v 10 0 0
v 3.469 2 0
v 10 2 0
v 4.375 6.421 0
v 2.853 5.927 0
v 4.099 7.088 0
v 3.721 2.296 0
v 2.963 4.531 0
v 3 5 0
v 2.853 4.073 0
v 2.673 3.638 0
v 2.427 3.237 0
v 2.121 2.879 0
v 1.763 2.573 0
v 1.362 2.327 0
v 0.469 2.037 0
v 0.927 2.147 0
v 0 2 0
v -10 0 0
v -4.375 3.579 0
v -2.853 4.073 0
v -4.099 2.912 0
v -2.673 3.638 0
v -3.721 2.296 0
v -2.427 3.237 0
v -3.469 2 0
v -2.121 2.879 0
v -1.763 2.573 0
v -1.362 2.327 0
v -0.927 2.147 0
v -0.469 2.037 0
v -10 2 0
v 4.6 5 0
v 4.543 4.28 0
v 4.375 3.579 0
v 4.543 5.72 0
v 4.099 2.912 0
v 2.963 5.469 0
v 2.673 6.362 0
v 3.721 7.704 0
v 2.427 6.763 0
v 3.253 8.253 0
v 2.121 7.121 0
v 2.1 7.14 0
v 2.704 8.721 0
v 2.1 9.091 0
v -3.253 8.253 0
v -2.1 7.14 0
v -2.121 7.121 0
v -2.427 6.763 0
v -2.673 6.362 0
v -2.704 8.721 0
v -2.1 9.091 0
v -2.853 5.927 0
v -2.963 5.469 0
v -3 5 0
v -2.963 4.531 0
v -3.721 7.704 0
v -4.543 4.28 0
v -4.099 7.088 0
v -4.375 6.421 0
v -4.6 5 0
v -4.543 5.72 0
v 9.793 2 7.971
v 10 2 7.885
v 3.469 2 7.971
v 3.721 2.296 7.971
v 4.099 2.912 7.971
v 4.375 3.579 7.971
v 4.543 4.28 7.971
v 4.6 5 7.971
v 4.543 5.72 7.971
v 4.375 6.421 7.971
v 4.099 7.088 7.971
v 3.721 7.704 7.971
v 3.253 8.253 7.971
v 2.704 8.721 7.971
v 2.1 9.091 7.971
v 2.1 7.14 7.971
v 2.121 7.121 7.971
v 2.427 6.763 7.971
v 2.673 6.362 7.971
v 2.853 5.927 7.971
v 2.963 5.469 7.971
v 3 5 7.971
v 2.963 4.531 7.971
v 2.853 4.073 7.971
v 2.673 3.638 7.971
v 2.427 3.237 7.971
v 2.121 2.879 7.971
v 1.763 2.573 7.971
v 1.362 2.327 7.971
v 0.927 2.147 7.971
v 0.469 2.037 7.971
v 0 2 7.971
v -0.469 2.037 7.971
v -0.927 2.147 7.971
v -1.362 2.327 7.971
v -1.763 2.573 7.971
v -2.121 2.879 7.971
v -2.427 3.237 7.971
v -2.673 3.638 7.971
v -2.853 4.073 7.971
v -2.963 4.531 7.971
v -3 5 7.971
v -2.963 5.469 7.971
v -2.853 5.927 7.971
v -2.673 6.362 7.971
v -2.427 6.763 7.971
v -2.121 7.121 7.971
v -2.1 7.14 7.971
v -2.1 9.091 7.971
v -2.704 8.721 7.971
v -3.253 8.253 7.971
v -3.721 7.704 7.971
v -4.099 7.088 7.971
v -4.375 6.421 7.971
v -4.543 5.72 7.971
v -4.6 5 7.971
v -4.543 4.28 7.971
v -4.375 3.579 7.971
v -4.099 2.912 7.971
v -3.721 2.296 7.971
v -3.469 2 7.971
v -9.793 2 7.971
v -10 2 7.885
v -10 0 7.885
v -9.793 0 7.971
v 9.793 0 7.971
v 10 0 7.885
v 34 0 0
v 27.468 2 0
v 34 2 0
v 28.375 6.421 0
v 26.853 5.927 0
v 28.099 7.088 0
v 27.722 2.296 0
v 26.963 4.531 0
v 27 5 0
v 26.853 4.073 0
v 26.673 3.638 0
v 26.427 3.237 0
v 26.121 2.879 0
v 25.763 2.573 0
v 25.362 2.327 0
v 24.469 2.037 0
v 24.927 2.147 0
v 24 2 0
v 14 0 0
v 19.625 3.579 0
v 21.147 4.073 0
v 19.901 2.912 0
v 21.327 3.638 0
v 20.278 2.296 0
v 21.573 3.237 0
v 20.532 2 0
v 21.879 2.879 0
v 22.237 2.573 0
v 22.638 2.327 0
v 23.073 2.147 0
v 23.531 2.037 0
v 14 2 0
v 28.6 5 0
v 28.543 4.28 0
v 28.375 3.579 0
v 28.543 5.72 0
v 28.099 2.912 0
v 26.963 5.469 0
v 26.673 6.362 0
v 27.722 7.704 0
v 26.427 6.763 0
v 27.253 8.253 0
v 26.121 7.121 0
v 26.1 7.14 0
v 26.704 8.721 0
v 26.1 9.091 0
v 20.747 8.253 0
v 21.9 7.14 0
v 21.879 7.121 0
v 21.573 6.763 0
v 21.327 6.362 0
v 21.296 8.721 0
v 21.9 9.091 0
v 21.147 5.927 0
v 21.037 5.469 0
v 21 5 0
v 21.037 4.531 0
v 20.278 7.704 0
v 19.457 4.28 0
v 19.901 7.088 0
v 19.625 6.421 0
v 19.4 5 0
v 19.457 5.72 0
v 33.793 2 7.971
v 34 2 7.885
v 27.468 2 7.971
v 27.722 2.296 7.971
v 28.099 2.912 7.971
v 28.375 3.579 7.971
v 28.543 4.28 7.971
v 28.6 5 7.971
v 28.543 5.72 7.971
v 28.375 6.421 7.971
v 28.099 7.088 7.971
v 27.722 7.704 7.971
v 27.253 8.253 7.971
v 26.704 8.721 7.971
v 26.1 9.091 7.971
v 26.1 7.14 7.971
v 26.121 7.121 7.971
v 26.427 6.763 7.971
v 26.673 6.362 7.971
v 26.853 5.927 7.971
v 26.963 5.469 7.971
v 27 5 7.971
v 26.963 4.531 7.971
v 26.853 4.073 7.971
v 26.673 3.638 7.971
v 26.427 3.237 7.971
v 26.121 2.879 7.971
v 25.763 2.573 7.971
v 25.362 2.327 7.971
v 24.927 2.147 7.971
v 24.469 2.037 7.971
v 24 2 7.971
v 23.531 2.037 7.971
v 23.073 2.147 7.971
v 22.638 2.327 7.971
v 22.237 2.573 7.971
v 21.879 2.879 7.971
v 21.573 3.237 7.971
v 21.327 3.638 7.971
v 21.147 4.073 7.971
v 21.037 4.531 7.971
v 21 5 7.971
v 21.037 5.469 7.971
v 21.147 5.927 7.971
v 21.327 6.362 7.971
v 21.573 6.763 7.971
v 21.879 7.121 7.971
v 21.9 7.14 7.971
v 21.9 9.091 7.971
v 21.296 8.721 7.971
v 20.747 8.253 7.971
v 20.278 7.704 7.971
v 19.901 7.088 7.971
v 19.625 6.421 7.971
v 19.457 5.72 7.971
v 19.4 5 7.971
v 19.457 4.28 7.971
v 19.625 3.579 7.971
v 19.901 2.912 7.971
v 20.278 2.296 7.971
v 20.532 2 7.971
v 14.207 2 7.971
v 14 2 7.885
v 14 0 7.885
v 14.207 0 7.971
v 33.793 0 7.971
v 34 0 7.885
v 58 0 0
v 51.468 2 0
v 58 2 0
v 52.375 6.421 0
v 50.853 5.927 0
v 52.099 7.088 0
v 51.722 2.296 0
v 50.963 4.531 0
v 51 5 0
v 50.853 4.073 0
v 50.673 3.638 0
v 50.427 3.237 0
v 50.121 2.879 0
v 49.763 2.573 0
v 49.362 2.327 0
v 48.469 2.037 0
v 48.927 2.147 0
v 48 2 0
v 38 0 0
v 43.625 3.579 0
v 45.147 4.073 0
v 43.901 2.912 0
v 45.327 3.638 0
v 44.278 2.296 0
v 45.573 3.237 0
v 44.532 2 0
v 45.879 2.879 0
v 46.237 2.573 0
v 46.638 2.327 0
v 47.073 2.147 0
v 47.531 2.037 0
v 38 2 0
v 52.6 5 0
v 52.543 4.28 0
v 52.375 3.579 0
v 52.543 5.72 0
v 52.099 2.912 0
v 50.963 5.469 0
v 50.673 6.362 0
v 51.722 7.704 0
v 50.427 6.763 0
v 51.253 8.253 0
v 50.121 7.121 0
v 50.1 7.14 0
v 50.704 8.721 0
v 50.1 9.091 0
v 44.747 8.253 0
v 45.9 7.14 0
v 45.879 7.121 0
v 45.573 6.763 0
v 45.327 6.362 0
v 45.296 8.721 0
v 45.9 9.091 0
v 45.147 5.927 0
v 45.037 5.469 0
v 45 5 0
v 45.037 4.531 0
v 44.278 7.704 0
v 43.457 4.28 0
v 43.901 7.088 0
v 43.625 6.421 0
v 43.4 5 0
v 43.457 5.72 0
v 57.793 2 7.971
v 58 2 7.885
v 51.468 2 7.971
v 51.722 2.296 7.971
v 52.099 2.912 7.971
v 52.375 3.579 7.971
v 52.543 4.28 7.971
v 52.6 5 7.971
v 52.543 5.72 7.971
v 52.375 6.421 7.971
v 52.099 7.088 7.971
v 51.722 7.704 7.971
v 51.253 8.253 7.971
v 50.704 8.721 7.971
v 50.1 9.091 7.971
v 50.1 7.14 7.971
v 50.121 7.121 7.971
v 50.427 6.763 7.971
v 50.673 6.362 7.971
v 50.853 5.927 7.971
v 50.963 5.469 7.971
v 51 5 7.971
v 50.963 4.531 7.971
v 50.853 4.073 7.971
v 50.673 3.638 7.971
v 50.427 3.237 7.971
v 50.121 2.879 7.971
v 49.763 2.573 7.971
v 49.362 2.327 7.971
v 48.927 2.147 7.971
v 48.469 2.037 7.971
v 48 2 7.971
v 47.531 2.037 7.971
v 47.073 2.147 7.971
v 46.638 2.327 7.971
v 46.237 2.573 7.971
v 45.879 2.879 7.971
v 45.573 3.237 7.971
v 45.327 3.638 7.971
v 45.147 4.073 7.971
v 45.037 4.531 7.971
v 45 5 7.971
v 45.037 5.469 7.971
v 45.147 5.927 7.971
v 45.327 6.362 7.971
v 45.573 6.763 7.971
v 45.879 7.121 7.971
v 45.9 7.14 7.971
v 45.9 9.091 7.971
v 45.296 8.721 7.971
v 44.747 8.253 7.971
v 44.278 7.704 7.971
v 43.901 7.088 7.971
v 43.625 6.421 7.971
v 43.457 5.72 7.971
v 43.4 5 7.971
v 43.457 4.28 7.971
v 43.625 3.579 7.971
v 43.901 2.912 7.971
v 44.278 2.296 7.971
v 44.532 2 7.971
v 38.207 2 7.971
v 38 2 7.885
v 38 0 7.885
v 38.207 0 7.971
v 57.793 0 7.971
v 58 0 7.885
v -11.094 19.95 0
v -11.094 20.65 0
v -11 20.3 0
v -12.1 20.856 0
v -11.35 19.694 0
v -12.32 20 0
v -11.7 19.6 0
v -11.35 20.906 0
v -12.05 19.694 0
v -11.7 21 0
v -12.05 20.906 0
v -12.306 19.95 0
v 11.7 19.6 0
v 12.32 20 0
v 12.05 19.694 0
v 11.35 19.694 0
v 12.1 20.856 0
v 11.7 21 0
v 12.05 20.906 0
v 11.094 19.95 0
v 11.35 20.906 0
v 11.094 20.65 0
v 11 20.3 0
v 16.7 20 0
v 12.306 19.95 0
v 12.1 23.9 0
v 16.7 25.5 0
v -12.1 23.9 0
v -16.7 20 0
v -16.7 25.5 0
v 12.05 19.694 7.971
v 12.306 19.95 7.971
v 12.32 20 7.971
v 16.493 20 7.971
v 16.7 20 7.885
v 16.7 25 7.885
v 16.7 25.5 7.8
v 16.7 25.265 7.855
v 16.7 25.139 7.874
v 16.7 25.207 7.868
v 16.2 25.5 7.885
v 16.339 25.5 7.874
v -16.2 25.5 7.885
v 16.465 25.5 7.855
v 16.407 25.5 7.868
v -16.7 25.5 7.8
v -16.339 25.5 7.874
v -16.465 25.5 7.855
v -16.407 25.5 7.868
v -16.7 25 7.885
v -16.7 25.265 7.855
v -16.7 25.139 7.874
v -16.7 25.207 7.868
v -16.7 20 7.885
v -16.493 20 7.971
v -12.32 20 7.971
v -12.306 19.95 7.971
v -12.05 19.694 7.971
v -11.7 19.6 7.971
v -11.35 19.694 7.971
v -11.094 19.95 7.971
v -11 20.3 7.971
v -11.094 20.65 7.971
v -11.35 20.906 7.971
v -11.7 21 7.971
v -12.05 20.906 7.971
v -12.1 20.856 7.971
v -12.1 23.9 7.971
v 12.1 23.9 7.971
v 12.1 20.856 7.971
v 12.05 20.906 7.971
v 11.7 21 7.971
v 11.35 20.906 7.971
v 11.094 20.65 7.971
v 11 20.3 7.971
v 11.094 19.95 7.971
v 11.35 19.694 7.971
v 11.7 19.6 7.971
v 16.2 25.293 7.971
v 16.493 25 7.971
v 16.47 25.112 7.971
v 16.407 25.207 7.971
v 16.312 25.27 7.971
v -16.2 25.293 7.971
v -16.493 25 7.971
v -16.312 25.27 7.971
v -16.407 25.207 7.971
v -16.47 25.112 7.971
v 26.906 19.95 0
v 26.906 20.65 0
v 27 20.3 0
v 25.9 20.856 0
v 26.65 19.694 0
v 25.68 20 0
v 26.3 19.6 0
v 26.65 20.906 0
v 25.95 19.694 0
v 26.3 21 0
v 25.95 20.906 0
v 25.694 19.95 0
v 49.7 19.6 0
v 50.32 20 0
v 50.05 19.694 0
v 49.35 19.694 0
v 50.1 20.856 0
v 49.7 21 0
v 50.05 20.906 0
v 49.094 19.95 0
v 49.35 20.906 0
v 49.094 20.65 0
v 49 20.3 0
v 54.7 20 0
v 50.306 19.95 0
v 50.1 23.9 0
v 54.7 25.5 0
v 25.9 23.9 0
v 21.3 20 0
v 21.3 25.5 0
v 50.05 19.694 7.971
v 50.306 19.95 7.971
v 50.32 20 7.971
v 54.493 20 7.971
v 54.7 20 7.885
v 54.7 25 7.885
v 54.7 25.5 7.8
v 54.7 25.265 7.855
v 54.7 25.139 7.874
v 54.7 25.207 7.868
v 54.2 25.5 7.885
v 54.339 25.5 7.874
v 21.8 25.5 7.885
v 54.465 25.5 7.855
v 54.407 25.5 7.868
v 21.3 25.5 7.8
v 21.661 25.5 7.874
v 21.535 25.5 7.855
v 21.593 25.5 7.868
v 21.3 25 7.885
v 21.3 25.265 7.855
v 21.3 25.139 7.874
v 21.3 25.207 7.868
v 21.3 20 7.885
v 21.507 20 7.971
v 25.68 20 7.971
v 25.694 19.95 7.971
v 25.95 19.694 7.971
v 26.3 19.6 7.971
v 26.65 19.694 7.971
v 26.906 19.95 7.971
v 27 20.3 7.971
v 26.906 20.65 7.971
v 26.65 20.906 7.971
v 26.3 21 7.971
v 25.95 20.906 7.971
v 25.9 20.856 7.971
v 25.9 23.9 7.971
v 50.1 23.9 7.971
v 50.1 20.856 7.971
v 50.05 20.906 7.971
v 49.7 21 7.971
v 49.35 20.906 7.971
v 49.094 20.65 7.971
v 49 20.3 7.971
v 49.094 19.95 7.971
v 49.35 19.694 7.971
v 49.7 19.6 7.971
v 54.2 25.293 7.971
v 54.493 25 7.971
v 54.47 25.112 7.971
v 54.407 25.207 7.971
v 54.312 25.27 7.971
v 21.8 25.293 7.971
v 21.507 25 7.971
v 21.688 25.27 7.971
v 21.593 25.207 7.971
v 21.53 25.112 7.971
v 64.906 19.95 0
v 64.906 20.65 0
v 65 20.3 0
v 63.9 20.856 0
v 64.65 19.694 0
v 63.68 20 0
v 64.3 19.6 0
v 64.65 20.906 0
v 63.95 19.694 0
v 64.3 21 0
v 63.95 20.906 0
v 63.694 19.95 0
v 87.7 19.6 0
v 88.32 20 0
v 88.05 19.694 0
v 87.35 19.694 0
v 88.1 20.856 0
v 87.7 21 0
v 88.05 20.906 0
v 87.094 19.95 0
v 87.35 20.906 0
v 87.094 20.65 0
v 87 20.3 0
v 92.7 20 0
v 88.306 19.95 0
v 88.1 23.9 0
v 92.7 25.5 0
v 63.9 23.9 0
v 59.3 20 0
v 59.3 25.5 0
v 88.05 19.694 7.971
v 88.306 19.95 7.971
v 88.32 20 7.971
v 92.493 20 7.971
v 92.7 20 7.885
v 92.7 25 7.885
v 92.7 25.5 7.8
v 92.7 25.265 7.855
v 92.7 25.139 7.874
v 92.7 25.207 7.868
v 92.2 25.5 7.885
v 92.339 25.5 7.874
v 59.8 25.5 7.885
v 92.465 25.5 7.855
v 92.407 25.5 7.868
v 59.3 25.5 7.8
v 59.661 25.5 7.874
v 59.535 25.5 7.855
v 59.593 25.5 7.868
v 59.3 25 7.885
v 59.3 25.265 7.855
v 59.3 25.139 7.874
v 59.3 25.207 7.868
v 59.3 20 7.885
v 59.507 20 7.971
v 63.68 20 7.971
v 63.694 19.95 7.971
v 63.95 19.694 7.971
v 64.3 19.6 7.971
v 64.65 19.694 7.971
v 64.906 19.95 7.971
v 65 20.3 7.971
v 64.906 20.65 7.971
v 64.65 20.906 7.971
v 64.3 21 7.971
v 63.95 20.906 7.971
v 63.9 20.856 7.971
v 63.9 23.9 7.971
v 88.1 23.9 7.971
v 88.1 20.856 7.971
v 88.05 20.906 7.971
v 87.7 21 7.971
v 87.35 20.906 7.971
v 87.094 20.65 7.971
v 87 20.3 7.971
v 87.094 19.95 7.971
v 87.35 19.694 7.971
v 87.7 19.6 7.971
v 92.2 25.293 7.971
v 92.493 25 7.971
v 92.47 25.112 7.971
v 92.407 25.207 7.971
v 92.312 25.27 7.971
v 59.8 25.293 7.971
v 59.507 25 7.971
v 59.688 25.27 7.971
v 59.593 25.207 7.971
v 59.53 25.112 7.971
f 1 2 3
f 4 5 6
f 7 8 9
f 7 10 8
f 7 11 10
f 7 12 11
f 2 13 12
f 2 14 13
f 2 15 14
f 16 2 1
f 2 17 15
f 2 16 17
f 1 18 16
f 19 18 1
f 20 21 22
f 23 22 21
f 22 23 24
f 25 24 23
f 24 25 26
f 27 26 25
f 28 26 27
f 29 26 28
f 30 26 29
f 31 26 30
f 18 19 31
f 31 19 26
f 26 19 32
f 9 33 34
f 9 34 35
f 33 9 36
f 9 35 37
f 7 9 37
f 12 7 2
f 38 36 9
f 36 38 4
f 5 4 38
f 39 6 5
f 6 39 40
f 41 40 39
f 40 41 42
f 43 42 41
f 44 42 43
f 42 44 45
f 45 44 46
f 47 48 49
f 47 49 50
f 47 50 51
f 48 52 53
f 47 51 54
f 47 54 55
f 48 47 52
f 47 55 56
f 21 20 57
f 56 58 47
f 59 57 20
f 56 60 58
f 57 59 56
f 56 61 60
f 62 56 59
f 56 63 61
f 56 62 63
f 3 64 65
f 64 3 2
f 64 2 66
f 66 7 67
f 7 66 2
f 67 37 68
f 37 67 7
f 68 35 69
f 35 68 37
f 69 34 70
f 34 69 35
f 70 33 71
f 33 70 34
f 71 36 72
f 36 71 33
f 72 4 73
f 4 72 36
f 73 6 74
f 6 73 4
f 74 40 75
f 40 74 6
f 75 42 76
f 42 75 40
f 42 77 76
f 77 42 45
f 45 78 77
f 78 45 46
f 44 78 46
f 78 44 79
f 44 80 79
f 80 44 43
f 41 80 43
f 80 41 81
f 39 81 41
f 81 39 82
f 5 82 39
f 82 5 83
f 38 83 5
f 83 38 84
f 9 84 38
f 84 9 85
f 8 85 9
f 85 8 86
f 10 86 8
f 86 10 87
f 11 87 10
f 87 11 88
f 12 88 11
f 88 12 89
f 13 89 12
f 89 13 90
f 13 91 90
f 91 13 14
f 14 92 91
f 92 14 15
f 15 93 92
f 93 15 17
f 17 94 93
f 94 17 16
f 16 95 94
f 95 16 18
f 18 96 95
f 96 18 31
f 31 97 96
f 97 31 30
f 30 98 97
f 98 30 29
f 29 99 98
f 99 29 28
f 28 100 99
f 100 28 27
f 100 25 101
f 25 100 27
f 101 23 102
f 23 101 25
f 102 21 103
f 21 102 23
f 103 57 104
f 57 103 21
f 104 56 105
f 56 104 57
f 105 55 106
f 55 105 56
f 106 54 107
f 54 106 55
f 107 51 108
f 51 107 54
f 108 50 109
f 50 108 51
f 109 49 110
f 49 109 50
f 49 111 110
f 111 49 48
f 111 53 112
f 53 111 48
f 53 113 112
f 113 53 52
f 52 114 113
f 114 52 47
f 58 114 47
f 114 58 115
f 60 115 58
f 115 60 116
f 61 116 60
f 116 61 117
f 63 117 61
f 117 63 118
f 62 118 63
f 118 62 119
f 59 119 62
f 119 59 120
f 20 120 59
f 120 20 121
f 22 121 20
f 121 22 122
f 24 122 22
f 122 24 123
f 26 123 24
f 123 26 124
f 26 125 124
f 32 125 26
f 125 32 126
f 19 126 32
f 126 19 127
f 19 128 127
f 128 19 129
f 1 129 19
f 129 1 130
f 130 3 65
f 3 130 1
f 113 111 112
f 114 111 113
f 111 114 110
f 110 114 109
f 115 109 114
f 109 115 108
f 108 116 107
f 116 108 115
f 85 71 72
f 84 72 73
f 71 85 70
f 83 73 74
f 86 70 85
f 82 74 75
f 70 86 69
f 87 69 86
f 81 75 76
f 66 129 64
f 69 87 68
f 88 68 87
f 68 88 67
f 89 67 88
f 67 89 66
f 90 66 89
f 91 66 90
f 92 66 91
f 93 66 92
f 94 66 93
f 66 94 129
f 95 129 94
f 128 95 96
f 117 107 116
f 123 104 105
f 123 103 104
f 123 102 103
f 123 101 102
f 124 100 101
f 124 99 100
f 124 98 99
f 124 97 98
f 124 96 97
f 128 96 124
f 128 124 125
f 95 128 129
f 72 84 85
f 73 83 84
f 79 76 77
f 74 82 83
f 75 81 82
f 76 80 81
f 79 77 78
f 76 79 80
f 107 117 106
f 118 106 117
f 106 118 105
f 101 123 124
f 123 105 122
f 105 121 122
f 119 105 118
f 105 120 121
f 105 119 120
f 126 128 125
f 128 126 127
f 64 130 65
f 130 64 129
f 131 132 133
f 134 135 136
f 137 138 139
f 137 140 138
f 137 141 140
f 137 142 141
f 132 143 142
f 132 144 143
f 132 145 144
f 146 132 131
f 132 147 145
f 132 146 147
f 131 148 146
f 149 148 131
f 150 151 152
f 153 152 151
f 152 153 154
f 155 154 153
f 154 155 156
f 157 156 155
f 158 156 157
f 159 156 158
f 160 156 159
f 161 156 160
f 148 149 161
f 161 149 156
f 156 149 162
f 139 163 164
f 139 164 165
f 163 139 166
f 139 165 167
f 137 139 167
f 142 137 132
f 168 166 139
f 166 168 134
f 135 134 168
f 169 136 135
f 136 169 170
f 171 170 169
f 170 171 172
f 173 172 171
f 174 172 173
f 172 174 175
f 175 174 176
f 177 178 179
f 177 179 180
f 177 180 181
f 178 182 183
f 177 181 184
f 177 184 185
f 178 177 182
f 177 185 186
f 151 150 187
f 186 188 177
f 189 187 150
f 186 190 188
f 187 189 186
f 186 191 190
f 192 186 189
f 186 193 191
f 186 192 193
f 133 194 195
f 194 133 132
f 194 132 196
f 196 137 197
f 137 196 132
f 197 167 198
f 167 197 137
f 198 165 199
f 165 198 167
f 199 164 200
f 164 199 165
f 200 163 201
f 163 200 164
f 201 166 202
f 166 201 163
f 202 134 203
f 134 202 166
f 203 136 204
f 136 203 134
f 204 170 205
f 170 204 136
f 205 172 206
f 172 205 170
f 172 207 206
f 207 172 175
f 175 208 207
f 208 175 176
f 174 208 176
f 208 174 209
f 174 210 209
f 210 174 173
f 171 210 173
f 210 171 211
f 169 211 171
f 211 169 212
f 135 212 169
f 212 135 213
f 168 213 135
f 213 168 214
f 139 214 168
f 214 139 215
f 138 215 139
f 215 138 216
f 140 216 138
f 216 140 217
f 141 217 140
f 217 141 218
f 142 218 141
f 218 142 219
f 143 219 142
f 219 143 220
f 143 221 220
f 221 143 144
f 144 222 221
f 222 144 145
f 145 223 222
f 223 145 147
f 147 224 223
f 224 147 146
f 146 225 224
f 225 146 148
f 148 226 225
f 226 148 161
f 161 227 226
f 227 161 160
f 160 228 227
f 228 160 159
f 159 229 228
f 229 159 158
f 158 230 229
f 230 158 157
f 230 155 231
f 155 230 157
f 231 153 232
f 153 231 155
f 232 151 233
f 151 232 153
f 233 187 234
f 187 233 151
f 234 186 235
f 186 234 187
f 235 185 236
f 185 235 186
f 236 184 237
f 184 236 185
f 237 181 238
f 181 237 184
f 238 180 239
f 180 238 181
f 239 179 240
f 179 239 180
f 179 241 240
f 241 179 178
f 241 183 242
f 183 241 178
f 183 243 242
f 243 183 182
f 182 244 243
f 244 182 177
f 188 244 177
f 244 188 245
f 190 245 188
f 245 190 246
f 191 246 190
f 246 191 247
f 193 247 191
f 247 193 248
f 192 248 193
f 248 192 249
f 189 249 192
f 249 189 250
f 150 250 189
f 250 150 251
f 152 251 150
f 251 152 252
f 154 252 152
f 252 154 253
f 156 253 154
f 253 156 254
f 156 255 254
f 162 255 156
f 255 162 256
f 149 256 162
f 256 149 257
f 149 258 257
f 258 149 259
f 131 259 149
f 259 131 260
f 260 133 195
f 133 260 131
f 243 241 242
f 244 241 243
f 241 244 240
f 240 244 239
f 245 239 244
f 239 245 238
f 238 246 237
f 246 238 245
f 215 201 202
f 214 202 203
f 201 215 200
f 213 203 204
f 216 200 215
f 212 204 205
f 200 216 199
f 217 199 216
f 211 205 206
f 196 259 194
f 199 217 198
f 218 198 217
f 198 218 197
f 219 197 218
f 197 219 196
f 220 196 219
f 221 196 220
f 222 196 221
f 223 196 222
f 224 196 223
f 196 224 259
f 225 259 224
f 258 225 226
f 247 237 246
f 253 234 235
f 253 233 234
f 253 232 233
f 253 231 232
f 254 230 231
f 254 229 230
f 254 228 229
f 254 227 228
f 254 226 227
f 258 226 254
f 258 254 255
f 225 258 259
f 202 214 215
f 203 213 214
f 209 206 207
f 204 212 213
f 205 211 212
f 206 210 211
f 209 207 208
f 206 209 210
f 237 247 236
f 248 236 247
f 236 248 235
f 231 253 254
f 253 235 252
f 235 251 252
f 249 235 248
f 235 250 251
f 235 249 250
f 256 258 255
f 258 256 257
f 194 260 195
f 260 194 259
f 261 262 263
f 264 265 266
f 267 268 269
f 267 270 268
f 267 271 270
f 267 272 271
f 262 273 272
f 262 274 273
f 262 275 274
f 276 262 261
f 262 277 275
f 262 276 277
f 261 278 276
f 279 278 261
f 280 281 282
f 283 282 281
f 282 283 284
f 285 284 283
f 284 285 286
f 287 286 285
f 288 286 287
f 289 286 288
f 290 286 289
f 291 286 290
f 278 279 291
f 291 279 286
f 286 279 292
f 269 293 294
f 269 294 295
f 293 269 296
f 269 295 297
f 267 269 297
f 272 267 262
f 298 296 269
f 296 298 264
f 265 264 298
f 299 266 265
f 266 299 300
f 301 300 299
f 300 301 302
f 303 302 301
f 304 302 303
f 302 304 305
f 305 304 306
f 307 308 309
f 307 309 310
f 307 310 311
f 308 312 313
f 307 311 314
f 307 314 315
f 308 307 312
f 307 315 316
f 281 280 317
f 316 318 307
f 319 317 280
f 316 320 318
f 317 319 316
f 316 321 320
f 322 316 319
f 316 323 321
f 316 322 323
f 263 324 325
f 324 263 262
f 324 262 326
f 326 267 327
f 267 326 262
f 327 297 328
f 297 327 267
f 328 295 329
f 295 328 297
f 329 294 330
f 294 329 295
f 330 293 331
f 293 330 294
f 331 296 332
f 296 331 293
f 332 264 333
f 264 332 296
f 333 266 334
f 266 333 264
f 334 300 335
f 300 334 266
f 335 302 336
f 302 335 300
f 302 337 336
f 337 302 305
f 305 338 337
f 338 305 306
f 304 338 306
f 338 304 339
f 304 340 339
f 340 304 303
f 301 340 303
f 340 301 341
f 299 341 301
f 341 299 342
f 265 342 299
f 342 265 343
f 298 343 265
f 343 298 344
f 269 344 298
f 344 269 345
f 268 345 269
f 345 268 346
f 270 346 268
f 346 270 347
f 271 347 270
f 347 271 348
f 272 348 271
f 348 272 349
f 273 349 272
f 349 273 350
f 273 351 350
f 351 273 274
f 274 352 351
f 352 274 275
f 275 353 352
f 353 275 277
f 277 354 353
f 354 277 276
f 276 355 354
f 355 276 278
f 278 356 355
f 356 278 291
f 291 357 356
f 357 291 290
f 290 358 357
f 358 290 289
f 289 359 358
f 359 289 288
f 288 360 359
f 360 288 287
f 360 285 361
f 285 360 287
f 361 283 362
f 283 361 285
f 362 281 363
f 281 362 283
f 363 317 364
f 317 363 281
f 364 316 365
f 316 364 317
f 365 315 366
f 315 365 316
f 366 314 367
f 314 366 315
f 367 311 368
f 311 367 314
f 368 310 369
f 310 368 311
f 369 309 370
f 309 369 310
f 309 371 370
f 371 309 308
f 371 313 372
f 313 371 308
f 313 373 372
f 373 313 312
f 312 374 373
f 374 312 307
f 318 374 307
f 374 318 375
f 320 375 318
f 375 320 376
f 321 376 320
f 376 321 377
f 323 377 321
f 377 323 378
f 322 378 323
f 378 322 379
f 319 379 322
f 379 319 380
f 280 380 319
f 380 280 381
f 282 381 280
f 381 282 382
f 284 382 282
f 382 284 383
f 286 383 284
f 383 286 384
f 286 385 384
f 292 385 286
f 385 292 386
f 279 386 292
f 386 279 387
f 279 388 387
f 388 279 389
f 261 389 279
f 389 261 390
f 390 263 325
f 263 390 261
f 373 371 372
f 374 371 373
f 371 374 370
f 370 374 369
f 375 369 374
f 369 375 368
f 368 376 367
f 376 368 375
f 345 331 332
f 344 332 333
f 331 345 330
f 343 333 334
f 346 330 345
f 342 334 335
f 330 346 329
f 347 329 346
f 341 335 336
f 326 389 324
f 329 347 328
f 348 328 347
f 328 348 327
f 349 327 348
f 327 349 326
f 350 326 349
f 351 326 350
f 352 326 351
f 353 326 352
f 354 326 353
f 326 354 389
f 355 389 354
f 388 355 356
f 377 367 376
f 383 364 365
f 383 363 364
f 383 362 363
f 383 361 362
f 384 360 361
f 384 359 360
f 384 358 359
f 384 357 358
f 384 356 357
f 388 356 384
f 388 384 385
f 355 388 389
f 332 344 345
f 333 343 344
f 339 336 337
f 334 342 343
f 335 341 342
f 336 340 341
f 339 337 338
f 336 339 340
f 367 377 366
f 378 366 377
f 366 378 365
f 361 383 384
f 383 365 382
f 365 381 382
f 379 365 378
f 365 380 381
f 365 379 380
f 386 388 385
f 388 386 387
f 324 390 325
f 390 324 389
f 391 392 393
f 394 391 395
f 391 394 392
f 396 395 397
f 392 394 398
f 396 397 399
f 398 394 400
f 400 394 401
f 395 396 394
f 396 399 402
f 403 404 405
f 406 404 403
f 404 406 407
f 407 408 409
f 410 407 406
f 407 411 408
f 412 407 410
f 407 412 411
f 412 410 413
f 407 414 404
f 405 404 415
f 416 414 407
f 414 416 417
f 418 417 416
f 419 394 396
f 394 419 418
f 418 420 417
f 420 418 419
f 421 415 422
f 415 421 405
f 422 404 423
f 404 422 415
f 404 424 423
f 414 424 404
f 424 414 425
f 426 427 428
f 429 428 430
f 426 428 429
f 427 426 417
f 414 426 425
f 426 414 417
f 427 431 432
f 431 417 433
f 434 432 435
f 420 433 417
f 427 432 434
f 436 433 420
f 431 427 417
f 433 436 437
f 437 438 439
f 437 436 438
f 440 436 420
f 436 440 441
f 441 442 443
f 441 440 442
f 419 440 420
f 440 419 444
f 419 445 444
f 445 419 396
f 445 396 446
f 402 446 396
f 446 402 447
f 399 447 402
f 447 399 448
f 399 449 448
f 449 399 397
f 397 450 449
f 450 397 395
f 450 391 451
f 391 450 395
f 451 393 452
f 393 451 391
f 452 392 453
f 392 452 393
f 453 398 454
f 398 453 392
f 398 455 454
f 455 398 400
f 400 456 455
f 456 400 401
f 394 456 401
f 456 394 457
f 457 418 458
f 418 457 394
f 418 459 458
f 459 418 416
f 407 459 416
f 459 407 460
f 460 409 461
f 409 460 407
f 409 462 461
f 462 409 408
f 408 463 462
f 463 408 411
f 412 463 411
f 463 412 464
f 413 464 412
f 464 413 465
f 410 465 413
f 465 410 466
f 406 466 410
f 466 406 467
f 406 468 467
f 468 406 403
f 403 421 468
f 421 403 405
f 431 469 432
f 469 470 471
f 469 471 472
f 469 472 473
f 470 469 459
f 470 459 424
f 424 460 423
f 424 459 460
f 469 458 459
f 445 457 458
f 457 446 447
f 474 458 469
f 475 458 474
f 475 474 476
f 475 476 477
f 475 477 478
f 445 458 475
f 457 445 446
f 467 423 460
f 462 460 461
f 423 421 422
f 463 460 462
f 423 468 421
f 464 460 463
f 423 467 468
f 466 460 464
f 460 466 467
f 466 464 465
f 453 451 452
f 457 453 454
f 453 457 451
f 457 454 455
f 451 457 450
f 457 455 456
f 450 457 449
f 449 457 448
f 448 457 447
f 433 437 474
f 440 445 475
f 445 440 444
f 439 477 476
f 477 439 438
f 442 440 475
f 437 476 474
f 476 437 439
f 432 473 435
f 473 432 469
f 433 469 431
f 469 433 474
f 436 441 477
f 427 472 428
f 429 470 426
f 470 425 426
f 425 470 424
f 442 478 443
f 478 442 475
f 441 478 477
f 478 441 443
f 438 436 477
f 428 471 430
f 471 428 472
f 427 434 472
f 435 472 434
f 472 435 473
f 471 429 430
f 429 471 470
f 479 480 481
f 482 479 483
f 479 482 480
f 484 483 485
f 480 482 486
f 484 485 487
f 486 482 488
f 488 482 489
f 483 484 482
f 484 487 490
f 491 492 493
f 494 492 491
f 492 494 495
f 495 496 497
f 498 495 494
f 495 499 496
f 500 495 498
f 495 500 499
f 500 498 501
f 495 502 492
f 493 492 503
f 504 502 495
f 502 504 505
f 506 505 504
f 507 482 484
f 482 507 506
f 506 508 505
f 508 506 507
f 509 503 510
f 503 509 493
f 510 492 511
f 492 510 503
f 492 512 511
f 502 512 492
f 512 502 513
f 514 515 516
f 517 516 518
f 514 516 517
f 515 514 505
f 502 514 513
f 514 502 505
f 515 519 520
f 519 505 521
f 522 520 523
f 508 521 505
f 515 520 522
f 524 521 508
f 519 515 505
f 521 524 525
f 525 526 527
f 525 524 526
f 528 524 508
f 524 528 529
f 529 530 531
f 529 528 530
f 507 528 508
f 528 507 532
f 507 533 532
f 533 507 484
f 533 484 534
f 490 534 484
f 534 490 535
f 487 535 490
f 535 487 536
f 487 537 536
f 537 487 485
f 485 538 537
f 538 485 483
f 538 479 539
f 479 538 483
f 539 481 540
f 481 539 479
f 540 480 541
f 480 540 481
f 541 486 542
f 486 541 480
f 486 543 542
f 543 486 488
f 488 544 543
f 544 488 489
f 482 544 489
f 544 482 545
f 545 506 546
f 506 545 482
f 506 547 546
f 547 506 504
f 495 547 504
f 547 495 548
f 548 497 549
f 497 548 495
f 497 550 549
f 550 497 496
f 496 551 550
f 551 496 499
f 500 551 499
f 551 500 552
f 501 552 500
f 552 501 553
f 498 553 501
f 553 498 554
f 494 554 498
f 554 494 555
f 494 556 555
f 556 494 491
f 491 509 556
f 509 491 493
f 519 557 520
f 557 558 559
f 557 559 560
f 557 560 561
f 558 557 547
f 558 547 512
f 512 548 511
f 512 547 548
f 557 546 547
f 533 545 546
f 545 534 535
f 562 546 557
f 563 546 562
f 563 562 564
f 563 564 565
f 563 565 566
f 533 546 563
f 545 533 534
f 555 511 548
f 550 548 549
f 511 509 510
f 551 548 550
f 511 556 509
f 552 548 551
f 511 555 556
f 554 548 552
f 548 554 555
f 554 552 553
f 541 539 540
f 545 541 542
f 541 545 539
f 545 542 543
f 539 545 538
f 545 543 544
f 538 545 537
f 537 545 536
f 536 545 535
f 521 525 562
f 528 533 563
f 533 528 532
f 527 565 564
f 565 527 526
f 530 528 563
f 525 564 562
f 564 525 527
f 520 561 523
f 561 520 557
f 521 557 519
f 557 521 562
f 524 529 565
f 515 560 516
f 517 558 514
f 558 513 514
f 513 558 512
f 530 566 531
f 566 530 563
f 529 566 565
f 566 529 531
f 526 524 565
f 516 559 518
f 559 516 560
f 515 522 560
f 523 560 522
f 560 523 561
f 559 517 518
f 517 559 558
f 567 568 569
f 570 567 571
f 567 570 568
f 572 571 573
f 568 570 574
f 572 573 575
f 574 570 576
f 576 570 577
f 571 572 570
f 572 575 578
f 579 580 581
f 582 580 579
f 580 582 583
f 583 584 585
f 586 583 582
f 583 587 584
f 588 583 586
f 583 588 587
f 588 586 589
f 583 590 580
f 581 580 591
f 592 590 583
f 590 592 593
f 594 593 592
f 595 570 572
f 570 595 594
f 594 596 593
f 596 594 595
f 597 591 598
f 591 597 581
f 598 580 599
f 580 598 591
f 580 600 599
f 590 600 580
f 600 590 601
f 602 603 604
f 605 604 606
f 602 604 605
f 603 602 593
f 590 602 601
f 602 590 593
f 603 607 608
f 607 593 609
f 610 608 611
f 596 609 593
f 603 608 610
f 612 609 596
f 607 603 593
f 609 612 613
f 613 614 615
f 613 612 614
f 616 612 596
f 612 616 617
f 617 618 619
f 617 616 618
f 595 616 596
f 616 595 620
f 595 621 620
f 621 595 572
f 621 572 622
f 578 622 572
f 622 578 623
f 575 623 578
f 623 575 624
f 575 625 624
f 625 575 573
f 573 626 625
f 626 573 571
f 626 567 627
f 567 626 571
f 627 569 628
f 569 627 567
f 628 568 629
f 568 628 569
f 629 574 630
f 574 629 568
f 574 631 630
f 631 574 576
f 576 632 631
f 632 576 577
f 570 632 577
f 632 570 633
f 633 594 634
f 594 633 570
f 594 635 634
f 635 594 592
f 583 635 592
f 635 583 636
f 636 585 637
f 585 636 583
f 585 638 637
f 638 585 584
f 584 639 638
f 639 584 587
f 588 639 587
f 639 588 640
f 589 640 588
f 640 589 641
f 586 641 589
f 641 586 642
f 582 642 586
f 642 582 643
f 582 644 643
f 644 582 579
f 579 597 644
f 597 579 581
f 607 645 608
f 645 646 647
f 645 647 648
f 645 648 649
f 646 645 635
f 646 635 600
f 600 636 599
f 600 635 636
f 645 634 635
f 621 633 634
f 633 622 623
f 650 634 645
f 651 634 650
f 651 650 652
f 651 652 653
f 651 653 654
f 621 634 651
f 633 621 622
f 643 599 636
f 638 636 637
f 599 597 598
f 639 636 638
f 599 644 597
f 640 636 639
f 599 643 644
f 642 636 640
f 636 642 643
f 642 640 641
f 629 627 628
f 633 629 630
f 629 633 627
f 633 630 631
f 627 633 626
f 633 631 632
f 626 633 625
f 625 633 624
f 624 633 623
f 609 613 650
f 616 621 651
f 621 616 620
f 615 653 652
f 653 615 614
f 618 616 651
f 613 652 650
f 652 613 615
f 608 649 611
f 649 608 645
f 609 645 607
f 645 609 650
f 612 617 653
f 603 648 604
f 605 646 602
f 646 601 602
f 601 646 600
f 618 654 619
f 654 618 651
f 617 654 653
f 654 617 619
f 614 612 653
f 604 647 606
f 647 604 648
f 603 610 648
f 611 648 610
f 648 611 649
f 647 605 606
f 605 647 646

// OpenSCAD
// SPDX-License-Identifier: CERN-OHL-P-2.0
// Copyright 2026 CLSOFTLAB (씨엘소프트랩), Dr. Lee Il-guk (이일국)
// Open Walking Safety Helmet (OWSH) - cable_clip (spec §10): snap clips on a Dual Lock base,
// "bundle" type for Dupont bundles and "fpc" type that snaps over the fpc_cover channel.
// Qty 6 (this plate: 3 bundle + 3 fpc). Clips are placed under the straps, never glued to EPS.
// Print: PETG, lying on the side (profile on the bed, as exported), no supports.

include <lib/owsh_common.scad>

// ----------------------------------------------------------------- parameters
clip_width  = 8;      // along the cable
base        = [20, 2.0];
bundle_d    = 6.0;    // Dupont bundle diameter
hoop_t      = 1.6;
snap_open   = 0.7;    // opening as fraction of bundle_d
fpc_cover_w = 24.2;   // outer width of fpc_cover body (see fpc_cover.scad) + clearance
fpc_cover_h = 3.9;
n_bundle    = 3;
n_fpc       = 3;

module bundle_profile() {
    r = bundle_d / 2;
    difference() {
        union() {
            translate([-base[0] / 2, 0]) square([base[0], base[1]]);
            translate([0, base[1] + r]) circle(r = r + hoop_t, $fn = 40);
        }
        translate([0, base[1] + r]) circle(r = r, $fn = 40);
        translate([-bundle_d * snap_open / 2, base[1] + r]) square([bundle_d * snap_open, r + hoop_t + 1]);
    }
}

module fpc_profile() {
    w = fpc_cover_w; h = fpc_cover_h; t = hoop_t;
    difference() {
        translate([-(w / 2 + t + 3), 0]) square([w + 2 * t + 6, h + t]);
        translate([-w / 2, -1]) square([w, h + 1]);
        // snap hooks: small inward lips at the feet
    }
    for (s = [-1, 1]) translate([s * (w / 2 - 0.4), 0.3]) circle(r = 0.7, $fn = 12);
}

module soft_clip(size) {
    intersection() {
        children();
        translate([0, size[1] / 2 - 1, 0]) rounded_box([size[0] + 2, size[1] + 4, clip_width], r = 1.5, r_plan = 1.5, flat_bottom = true);
    }
}

for (i = [0 : n_bundle - 1]) translate([i * 24, 0, 0])
    soft_clip([base[0], base[1] + bundle_d + 2 * hoop_t]) linear_extrude(clip_width) bundle_profile();
for (i = [0 : n_fpc - 1]) translate([i * 38, 20, 0])
    soft_clip([fpc_cover_w + 2 * hoop_t + 6, fpc_cover_h + hoop_t]) linear_extrude(clip_width) fpc_profile();
